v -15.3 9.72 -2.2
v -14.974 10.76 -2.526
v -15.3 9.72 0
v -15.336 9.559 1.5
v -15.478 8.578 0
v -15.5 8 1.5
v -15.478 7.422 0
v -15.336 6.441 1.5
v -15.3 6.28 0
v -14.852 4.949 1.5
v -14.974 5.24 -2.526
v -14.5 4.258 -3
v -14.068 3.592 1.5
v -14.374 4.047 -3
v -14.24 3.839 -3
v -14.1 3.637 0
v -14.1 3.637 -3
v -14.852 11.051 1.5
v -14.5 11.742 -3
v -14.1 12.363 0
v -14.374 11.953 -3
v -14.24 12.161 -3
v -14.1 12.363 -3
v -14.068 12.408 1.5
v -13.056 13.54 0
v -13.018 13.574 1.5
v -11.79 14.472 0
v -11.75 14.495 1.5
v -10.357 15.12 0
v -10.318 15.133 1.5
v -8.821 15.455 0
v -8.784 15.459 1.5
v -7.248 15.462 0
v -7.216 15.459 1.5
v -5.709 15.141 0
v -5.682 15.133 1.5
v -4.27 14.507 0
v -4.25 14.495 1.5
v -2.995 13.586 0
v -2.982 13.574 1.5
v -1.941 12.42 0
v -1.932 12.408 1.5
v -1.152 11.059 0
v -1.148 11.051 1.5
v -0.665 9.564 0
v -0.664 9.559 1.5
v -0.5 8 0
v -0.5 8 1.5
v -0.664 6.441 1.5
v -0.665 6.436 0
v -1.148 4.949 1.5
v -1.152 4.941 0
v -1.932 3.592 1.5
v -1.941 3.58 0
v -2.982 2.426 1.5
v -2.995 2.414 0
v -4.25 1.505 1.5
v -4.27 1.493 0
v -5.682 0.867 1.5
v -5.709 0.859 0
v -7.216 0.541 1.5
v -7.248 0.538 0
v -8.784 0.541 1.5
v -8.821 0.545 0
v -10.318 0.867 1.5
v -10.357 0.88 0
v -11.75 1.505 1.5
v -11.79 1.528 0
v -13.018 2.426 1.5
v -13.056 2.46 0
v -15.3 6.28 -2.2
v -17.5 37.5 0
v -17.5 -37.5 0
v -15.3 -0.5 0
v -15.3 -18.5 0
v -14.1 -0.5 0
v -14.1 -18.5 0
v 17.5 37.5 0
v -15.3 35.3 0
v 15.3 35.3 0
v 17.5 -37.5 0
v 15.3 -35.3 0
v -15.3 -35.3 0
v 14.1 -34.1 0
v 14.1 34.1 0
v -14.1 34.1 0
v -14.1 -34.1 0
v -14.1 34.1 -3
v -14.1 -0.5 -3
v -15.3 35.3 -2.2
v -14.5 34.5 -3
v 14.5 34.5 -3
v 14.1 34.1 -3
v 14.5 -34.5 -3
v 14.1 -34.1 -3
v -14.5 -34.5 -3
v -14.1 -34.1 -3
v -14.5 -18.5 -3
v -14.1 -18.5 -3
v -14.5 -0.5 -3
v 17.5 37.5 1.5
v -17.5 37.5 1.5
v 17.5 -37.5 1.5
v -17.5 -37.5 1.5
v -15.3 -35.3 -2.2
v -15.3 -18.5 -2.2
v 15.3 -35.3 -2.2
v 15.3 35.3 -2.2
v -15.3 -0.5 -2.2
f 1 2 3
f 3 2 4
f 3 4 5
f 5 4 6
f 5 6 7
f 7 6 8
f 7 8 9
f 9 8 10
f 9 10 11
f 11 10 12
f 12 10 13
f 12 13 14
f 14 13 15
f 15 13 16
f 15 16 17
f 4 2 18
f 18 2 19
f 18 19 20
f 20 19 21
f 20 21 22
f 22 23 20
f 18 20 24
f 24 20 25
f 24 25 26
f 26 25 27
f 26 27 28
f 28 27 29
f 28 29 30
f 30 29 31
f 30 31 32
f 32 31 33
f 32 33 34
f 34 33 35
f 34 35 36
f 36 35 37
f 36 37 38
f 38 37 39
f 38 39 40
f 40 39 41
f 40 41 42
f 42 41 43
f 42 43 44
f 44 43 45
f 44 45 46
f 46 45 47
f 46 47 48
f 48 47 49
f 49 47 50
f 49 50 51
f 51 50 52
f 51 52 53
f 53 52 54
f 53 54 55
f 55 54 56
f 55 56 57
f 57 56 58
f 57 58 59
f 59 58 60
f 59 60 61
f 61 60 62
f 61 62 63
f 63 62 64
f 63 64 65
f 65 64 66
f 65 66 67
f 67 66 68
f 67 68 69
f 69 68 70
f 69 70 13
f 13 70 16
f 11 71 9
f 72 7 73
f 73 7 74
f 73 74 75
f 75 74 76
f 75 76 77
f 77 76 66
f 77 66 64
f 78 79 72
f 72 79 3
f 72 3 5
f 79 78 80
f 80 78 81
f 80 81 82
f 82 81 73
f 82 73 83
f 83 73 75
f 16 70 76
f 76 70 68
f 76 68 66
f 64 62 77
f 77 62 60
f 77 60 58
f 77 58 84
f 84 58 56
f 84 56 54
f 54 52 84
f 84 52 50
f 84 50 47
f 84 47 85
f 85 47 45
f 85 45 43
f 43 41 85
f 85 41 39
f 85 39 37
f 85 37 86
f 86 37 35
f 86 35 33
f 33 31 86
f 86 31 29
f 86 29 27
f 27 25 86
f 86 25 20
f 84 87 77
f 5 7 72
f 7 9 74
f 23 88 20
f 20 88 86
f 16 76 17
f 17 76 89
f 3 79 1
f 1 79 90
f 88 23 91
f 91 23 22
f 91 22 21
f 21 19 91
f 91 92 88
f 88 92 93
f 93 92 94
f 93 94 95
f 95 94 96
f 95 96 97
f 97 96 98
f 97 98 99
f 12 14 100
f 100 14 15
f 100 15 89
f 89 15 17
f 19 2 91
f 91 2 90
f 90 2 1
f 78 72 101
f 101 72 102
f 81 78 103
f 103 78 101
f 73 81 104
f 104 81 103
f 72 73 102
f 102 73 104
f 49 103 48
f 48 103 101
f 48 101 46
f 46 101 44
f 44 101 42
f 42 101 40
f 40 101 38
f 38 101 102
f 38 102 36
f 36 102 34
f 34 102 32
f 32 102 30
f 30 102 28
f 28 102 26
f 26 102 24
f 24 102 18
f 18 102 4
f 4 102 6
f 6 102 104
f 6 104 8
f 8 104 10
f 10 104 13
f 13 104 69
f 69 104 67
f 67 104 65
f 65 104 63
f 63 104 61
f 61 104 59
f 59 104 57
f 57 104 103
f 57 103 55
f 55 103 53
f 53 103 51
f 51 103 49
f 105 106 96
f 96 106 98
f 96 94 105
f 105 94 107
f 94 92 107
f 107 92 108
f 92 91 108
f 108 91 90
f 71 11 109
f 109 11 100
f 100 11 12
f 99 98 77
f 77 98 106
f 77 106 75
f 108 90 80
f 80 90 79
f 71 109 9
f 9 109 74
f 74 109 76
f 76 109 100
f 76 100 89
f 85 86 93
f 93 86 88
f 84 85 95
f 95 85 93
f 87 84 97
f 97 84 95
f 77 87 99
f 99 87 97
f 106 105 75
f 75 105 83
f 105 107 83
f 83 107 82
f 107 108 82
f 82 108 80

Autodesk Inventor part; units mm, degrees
ref_plane "YZ Plane" through (0, 0, 0) normal (1, 0, 0) x (0, 1, 0)
ref_plane "XZ Plane" through (0, 0, 0) normal (0, 1, 0) x (-1, 0, 0)
ref_plane "XY Plane" through (0, 0, 0) normal (0, 0, 1) x (1, 0, 0)
sketch "Boceto1" plane through (0, 0, 0) normal (0, 0, 1) x (1, 0, 0)
  line L0 (-15.5, -18.5) -> (-17.5, -18.5) projected
  line L1 (-17.5, -18.5) -> (-17.5, -37.5) projected
  line L2 (-17.5, -37.5) -> (17.5, -37.5) projected
  line L3 (17.5, -37.5) -> (17.5, 37.5) projected
  line L4 (17.5, 37.5) -> (-17.5, 37.5) projected
  line L5 (-17.5, 37.5) -> (-17.5, -0.5) projected
  line L6 (-17.5, -0.5) -> (-15.5, -0.5) projected
  line L7 (-15.5, -0.5) -> (-15.5, 35.5) projected
  line L8 (-15.5, 35.5) -> (15.5, 35.5) projected
  line L9 (15.5, 35.5) -> (15.5, -35.5) projected
  line L10 (15.5, -35.5) -> (-15.5, -35.5) projected
  line L11 (-15.5, -35.5) -> (-15.5, -18.5) projected
  line L12 (15.5, 35.5) -> (-15.5, 35.5)
  line L13 (-15.5, 35.5) -> (-15.5, -35.5)
  line L14 (-15.5, -35.5) -> (15.5, -35.5)
  line L15 (15.5, -35.5) -> (15.5, 35.5)
  line L16 (-15.3, -35.3) -> (-15.3, 35.3)
  line L17 (-15.3, 35.3) -> (15.3, 35.3)
  line L18 (15.3, 35.3) -> (15.3, -35.3)
  line L19 (15.3, -35.3) -> (-15.3, -35.3)
  line L20 (-14.1, 34.1) -> (-14.1, -34.1)
  line L21 (-14.1, -34.1) -> (14.1, -34.1)
  line L22 (14.1, -34.1) -> (14.1, 34.1)
  line L23 (14.1, 34.1) -> (-14.1, 34.1)
  line L24 (-15.5, -0.5) -> (-14.1, -0.5)
  line L25 (-15.5, -18.5) -> (-14.1, -18.5)
  point P0 (0, 0)
  point P1 (-15.3, -0.5)
  point P2 (-15.3, -18.5)
  dimension "d0" = 0.2
  dimension "d1" = 1.2
extrude "Extrusión1" add sketch "Boceto1" against normal blind 3 contours L25 L20 L21 L22 L23 L24 L16 L17 L18 L19
chamfer "Chaflán1" distance 0.8 angle 45 5 edges at (-15.3, 17.4, -3) (-15.3, -26.9, -3) (0, -35.3, -3) (15.3, 0, -3) (0, 35.3, -3)
sketch "Boceto2" plane through (0, 0, 0) normal (0, 0, 1) x (1, 0, 0)
  line L0 (-15.5, -18.5) -> (-17.5, -18.5) projected
  line L1 (-17.5, -18.5) -> (-17.5, -37.5) projected
  line L2 (-17.5, -37.5) -> (17.5, -37.5) projected
  line L3 (17.5, -37.5) -> (17.5, 37.5) projected
  line L4 (17.5, 37.5) -> (-17.5, 37.5) projected
  line L5 (-17.5, 37.5) -> (-17.5, -0.5) projected
  line L6 (-17.5, -0.5) -> (-15.5, -0.5) projected
  line L7 (-15.5, -0.5) -> (-15.5, 35.5) projected
  line L8 (-15.5, 35.5) -> (15.5, 35.5) projected
  line L9 (15.5, 35.5) -> (15.5, -35.5) projected
  line L10 (15.5, -35.5) -> (-15.5, -35.5) projected
  line L11 (-15.5, -35.5) -> (-15.5, -18.5) projected
  line L12 (-17.5, -0.5) -> (-17.5, -18.5)
  point P0 (0, 0)
extrude "Extrusión2" add sketch "Boceto2" along normal blind 1.5
sketch "Boceto3" plane through (0, 0, 1.5) normal (0, 0, 1) x (1, 0, 0)
  line L0 (-17.5, 37.5) -> (-17.5, -37.5) projected
  line L1 (-17.5, -37.5) -> (17.5, -37.5) projected
  line L2 (17.5, -37.5) -> (17.5, 37.5) projected
  line L3 (17.5, 37.5) -> (-17.5, 37.5) projected
  line L4 (-15.5, 35.5) -> (15.5, 35.5) projected
  line L5 (-15.5, -35.5) -> (-15.5, 35.5) projected
  line L6 (15.5, -35.5) -> (-15.5, -35.5) projected
  line L7 (15.5, 35.5) -> (15.5, -35.5) projected
  line L8 (-15.5, 35.5) -> (-15.5, 15.5)
  line L9 (-15.5, 15.5) -> (-0.5, 15.5)
  line L10 (-0.5, 15.5) -> (-15.5, 15.5)
  line L11 (-15.5, 15.5) -> (-15.5, 0.5)
  line L12 (-15.5, 0.5) -> (-0.5, 0.5)
  line L13 (-0.5, 0.5) -> (-0.5, 15.5)
  circle A0 centre (-8, 8) radius 7.5
  point P0 (0, 0)
  dimension "d9" = 20
  dimension "d11" = 15
  dimension "d12" = 15
  dimension "d13" = 15
extrude "Extrusión3" cut sketch "Boceto3" against normal through all contours A0
properties part number "Tapa"
